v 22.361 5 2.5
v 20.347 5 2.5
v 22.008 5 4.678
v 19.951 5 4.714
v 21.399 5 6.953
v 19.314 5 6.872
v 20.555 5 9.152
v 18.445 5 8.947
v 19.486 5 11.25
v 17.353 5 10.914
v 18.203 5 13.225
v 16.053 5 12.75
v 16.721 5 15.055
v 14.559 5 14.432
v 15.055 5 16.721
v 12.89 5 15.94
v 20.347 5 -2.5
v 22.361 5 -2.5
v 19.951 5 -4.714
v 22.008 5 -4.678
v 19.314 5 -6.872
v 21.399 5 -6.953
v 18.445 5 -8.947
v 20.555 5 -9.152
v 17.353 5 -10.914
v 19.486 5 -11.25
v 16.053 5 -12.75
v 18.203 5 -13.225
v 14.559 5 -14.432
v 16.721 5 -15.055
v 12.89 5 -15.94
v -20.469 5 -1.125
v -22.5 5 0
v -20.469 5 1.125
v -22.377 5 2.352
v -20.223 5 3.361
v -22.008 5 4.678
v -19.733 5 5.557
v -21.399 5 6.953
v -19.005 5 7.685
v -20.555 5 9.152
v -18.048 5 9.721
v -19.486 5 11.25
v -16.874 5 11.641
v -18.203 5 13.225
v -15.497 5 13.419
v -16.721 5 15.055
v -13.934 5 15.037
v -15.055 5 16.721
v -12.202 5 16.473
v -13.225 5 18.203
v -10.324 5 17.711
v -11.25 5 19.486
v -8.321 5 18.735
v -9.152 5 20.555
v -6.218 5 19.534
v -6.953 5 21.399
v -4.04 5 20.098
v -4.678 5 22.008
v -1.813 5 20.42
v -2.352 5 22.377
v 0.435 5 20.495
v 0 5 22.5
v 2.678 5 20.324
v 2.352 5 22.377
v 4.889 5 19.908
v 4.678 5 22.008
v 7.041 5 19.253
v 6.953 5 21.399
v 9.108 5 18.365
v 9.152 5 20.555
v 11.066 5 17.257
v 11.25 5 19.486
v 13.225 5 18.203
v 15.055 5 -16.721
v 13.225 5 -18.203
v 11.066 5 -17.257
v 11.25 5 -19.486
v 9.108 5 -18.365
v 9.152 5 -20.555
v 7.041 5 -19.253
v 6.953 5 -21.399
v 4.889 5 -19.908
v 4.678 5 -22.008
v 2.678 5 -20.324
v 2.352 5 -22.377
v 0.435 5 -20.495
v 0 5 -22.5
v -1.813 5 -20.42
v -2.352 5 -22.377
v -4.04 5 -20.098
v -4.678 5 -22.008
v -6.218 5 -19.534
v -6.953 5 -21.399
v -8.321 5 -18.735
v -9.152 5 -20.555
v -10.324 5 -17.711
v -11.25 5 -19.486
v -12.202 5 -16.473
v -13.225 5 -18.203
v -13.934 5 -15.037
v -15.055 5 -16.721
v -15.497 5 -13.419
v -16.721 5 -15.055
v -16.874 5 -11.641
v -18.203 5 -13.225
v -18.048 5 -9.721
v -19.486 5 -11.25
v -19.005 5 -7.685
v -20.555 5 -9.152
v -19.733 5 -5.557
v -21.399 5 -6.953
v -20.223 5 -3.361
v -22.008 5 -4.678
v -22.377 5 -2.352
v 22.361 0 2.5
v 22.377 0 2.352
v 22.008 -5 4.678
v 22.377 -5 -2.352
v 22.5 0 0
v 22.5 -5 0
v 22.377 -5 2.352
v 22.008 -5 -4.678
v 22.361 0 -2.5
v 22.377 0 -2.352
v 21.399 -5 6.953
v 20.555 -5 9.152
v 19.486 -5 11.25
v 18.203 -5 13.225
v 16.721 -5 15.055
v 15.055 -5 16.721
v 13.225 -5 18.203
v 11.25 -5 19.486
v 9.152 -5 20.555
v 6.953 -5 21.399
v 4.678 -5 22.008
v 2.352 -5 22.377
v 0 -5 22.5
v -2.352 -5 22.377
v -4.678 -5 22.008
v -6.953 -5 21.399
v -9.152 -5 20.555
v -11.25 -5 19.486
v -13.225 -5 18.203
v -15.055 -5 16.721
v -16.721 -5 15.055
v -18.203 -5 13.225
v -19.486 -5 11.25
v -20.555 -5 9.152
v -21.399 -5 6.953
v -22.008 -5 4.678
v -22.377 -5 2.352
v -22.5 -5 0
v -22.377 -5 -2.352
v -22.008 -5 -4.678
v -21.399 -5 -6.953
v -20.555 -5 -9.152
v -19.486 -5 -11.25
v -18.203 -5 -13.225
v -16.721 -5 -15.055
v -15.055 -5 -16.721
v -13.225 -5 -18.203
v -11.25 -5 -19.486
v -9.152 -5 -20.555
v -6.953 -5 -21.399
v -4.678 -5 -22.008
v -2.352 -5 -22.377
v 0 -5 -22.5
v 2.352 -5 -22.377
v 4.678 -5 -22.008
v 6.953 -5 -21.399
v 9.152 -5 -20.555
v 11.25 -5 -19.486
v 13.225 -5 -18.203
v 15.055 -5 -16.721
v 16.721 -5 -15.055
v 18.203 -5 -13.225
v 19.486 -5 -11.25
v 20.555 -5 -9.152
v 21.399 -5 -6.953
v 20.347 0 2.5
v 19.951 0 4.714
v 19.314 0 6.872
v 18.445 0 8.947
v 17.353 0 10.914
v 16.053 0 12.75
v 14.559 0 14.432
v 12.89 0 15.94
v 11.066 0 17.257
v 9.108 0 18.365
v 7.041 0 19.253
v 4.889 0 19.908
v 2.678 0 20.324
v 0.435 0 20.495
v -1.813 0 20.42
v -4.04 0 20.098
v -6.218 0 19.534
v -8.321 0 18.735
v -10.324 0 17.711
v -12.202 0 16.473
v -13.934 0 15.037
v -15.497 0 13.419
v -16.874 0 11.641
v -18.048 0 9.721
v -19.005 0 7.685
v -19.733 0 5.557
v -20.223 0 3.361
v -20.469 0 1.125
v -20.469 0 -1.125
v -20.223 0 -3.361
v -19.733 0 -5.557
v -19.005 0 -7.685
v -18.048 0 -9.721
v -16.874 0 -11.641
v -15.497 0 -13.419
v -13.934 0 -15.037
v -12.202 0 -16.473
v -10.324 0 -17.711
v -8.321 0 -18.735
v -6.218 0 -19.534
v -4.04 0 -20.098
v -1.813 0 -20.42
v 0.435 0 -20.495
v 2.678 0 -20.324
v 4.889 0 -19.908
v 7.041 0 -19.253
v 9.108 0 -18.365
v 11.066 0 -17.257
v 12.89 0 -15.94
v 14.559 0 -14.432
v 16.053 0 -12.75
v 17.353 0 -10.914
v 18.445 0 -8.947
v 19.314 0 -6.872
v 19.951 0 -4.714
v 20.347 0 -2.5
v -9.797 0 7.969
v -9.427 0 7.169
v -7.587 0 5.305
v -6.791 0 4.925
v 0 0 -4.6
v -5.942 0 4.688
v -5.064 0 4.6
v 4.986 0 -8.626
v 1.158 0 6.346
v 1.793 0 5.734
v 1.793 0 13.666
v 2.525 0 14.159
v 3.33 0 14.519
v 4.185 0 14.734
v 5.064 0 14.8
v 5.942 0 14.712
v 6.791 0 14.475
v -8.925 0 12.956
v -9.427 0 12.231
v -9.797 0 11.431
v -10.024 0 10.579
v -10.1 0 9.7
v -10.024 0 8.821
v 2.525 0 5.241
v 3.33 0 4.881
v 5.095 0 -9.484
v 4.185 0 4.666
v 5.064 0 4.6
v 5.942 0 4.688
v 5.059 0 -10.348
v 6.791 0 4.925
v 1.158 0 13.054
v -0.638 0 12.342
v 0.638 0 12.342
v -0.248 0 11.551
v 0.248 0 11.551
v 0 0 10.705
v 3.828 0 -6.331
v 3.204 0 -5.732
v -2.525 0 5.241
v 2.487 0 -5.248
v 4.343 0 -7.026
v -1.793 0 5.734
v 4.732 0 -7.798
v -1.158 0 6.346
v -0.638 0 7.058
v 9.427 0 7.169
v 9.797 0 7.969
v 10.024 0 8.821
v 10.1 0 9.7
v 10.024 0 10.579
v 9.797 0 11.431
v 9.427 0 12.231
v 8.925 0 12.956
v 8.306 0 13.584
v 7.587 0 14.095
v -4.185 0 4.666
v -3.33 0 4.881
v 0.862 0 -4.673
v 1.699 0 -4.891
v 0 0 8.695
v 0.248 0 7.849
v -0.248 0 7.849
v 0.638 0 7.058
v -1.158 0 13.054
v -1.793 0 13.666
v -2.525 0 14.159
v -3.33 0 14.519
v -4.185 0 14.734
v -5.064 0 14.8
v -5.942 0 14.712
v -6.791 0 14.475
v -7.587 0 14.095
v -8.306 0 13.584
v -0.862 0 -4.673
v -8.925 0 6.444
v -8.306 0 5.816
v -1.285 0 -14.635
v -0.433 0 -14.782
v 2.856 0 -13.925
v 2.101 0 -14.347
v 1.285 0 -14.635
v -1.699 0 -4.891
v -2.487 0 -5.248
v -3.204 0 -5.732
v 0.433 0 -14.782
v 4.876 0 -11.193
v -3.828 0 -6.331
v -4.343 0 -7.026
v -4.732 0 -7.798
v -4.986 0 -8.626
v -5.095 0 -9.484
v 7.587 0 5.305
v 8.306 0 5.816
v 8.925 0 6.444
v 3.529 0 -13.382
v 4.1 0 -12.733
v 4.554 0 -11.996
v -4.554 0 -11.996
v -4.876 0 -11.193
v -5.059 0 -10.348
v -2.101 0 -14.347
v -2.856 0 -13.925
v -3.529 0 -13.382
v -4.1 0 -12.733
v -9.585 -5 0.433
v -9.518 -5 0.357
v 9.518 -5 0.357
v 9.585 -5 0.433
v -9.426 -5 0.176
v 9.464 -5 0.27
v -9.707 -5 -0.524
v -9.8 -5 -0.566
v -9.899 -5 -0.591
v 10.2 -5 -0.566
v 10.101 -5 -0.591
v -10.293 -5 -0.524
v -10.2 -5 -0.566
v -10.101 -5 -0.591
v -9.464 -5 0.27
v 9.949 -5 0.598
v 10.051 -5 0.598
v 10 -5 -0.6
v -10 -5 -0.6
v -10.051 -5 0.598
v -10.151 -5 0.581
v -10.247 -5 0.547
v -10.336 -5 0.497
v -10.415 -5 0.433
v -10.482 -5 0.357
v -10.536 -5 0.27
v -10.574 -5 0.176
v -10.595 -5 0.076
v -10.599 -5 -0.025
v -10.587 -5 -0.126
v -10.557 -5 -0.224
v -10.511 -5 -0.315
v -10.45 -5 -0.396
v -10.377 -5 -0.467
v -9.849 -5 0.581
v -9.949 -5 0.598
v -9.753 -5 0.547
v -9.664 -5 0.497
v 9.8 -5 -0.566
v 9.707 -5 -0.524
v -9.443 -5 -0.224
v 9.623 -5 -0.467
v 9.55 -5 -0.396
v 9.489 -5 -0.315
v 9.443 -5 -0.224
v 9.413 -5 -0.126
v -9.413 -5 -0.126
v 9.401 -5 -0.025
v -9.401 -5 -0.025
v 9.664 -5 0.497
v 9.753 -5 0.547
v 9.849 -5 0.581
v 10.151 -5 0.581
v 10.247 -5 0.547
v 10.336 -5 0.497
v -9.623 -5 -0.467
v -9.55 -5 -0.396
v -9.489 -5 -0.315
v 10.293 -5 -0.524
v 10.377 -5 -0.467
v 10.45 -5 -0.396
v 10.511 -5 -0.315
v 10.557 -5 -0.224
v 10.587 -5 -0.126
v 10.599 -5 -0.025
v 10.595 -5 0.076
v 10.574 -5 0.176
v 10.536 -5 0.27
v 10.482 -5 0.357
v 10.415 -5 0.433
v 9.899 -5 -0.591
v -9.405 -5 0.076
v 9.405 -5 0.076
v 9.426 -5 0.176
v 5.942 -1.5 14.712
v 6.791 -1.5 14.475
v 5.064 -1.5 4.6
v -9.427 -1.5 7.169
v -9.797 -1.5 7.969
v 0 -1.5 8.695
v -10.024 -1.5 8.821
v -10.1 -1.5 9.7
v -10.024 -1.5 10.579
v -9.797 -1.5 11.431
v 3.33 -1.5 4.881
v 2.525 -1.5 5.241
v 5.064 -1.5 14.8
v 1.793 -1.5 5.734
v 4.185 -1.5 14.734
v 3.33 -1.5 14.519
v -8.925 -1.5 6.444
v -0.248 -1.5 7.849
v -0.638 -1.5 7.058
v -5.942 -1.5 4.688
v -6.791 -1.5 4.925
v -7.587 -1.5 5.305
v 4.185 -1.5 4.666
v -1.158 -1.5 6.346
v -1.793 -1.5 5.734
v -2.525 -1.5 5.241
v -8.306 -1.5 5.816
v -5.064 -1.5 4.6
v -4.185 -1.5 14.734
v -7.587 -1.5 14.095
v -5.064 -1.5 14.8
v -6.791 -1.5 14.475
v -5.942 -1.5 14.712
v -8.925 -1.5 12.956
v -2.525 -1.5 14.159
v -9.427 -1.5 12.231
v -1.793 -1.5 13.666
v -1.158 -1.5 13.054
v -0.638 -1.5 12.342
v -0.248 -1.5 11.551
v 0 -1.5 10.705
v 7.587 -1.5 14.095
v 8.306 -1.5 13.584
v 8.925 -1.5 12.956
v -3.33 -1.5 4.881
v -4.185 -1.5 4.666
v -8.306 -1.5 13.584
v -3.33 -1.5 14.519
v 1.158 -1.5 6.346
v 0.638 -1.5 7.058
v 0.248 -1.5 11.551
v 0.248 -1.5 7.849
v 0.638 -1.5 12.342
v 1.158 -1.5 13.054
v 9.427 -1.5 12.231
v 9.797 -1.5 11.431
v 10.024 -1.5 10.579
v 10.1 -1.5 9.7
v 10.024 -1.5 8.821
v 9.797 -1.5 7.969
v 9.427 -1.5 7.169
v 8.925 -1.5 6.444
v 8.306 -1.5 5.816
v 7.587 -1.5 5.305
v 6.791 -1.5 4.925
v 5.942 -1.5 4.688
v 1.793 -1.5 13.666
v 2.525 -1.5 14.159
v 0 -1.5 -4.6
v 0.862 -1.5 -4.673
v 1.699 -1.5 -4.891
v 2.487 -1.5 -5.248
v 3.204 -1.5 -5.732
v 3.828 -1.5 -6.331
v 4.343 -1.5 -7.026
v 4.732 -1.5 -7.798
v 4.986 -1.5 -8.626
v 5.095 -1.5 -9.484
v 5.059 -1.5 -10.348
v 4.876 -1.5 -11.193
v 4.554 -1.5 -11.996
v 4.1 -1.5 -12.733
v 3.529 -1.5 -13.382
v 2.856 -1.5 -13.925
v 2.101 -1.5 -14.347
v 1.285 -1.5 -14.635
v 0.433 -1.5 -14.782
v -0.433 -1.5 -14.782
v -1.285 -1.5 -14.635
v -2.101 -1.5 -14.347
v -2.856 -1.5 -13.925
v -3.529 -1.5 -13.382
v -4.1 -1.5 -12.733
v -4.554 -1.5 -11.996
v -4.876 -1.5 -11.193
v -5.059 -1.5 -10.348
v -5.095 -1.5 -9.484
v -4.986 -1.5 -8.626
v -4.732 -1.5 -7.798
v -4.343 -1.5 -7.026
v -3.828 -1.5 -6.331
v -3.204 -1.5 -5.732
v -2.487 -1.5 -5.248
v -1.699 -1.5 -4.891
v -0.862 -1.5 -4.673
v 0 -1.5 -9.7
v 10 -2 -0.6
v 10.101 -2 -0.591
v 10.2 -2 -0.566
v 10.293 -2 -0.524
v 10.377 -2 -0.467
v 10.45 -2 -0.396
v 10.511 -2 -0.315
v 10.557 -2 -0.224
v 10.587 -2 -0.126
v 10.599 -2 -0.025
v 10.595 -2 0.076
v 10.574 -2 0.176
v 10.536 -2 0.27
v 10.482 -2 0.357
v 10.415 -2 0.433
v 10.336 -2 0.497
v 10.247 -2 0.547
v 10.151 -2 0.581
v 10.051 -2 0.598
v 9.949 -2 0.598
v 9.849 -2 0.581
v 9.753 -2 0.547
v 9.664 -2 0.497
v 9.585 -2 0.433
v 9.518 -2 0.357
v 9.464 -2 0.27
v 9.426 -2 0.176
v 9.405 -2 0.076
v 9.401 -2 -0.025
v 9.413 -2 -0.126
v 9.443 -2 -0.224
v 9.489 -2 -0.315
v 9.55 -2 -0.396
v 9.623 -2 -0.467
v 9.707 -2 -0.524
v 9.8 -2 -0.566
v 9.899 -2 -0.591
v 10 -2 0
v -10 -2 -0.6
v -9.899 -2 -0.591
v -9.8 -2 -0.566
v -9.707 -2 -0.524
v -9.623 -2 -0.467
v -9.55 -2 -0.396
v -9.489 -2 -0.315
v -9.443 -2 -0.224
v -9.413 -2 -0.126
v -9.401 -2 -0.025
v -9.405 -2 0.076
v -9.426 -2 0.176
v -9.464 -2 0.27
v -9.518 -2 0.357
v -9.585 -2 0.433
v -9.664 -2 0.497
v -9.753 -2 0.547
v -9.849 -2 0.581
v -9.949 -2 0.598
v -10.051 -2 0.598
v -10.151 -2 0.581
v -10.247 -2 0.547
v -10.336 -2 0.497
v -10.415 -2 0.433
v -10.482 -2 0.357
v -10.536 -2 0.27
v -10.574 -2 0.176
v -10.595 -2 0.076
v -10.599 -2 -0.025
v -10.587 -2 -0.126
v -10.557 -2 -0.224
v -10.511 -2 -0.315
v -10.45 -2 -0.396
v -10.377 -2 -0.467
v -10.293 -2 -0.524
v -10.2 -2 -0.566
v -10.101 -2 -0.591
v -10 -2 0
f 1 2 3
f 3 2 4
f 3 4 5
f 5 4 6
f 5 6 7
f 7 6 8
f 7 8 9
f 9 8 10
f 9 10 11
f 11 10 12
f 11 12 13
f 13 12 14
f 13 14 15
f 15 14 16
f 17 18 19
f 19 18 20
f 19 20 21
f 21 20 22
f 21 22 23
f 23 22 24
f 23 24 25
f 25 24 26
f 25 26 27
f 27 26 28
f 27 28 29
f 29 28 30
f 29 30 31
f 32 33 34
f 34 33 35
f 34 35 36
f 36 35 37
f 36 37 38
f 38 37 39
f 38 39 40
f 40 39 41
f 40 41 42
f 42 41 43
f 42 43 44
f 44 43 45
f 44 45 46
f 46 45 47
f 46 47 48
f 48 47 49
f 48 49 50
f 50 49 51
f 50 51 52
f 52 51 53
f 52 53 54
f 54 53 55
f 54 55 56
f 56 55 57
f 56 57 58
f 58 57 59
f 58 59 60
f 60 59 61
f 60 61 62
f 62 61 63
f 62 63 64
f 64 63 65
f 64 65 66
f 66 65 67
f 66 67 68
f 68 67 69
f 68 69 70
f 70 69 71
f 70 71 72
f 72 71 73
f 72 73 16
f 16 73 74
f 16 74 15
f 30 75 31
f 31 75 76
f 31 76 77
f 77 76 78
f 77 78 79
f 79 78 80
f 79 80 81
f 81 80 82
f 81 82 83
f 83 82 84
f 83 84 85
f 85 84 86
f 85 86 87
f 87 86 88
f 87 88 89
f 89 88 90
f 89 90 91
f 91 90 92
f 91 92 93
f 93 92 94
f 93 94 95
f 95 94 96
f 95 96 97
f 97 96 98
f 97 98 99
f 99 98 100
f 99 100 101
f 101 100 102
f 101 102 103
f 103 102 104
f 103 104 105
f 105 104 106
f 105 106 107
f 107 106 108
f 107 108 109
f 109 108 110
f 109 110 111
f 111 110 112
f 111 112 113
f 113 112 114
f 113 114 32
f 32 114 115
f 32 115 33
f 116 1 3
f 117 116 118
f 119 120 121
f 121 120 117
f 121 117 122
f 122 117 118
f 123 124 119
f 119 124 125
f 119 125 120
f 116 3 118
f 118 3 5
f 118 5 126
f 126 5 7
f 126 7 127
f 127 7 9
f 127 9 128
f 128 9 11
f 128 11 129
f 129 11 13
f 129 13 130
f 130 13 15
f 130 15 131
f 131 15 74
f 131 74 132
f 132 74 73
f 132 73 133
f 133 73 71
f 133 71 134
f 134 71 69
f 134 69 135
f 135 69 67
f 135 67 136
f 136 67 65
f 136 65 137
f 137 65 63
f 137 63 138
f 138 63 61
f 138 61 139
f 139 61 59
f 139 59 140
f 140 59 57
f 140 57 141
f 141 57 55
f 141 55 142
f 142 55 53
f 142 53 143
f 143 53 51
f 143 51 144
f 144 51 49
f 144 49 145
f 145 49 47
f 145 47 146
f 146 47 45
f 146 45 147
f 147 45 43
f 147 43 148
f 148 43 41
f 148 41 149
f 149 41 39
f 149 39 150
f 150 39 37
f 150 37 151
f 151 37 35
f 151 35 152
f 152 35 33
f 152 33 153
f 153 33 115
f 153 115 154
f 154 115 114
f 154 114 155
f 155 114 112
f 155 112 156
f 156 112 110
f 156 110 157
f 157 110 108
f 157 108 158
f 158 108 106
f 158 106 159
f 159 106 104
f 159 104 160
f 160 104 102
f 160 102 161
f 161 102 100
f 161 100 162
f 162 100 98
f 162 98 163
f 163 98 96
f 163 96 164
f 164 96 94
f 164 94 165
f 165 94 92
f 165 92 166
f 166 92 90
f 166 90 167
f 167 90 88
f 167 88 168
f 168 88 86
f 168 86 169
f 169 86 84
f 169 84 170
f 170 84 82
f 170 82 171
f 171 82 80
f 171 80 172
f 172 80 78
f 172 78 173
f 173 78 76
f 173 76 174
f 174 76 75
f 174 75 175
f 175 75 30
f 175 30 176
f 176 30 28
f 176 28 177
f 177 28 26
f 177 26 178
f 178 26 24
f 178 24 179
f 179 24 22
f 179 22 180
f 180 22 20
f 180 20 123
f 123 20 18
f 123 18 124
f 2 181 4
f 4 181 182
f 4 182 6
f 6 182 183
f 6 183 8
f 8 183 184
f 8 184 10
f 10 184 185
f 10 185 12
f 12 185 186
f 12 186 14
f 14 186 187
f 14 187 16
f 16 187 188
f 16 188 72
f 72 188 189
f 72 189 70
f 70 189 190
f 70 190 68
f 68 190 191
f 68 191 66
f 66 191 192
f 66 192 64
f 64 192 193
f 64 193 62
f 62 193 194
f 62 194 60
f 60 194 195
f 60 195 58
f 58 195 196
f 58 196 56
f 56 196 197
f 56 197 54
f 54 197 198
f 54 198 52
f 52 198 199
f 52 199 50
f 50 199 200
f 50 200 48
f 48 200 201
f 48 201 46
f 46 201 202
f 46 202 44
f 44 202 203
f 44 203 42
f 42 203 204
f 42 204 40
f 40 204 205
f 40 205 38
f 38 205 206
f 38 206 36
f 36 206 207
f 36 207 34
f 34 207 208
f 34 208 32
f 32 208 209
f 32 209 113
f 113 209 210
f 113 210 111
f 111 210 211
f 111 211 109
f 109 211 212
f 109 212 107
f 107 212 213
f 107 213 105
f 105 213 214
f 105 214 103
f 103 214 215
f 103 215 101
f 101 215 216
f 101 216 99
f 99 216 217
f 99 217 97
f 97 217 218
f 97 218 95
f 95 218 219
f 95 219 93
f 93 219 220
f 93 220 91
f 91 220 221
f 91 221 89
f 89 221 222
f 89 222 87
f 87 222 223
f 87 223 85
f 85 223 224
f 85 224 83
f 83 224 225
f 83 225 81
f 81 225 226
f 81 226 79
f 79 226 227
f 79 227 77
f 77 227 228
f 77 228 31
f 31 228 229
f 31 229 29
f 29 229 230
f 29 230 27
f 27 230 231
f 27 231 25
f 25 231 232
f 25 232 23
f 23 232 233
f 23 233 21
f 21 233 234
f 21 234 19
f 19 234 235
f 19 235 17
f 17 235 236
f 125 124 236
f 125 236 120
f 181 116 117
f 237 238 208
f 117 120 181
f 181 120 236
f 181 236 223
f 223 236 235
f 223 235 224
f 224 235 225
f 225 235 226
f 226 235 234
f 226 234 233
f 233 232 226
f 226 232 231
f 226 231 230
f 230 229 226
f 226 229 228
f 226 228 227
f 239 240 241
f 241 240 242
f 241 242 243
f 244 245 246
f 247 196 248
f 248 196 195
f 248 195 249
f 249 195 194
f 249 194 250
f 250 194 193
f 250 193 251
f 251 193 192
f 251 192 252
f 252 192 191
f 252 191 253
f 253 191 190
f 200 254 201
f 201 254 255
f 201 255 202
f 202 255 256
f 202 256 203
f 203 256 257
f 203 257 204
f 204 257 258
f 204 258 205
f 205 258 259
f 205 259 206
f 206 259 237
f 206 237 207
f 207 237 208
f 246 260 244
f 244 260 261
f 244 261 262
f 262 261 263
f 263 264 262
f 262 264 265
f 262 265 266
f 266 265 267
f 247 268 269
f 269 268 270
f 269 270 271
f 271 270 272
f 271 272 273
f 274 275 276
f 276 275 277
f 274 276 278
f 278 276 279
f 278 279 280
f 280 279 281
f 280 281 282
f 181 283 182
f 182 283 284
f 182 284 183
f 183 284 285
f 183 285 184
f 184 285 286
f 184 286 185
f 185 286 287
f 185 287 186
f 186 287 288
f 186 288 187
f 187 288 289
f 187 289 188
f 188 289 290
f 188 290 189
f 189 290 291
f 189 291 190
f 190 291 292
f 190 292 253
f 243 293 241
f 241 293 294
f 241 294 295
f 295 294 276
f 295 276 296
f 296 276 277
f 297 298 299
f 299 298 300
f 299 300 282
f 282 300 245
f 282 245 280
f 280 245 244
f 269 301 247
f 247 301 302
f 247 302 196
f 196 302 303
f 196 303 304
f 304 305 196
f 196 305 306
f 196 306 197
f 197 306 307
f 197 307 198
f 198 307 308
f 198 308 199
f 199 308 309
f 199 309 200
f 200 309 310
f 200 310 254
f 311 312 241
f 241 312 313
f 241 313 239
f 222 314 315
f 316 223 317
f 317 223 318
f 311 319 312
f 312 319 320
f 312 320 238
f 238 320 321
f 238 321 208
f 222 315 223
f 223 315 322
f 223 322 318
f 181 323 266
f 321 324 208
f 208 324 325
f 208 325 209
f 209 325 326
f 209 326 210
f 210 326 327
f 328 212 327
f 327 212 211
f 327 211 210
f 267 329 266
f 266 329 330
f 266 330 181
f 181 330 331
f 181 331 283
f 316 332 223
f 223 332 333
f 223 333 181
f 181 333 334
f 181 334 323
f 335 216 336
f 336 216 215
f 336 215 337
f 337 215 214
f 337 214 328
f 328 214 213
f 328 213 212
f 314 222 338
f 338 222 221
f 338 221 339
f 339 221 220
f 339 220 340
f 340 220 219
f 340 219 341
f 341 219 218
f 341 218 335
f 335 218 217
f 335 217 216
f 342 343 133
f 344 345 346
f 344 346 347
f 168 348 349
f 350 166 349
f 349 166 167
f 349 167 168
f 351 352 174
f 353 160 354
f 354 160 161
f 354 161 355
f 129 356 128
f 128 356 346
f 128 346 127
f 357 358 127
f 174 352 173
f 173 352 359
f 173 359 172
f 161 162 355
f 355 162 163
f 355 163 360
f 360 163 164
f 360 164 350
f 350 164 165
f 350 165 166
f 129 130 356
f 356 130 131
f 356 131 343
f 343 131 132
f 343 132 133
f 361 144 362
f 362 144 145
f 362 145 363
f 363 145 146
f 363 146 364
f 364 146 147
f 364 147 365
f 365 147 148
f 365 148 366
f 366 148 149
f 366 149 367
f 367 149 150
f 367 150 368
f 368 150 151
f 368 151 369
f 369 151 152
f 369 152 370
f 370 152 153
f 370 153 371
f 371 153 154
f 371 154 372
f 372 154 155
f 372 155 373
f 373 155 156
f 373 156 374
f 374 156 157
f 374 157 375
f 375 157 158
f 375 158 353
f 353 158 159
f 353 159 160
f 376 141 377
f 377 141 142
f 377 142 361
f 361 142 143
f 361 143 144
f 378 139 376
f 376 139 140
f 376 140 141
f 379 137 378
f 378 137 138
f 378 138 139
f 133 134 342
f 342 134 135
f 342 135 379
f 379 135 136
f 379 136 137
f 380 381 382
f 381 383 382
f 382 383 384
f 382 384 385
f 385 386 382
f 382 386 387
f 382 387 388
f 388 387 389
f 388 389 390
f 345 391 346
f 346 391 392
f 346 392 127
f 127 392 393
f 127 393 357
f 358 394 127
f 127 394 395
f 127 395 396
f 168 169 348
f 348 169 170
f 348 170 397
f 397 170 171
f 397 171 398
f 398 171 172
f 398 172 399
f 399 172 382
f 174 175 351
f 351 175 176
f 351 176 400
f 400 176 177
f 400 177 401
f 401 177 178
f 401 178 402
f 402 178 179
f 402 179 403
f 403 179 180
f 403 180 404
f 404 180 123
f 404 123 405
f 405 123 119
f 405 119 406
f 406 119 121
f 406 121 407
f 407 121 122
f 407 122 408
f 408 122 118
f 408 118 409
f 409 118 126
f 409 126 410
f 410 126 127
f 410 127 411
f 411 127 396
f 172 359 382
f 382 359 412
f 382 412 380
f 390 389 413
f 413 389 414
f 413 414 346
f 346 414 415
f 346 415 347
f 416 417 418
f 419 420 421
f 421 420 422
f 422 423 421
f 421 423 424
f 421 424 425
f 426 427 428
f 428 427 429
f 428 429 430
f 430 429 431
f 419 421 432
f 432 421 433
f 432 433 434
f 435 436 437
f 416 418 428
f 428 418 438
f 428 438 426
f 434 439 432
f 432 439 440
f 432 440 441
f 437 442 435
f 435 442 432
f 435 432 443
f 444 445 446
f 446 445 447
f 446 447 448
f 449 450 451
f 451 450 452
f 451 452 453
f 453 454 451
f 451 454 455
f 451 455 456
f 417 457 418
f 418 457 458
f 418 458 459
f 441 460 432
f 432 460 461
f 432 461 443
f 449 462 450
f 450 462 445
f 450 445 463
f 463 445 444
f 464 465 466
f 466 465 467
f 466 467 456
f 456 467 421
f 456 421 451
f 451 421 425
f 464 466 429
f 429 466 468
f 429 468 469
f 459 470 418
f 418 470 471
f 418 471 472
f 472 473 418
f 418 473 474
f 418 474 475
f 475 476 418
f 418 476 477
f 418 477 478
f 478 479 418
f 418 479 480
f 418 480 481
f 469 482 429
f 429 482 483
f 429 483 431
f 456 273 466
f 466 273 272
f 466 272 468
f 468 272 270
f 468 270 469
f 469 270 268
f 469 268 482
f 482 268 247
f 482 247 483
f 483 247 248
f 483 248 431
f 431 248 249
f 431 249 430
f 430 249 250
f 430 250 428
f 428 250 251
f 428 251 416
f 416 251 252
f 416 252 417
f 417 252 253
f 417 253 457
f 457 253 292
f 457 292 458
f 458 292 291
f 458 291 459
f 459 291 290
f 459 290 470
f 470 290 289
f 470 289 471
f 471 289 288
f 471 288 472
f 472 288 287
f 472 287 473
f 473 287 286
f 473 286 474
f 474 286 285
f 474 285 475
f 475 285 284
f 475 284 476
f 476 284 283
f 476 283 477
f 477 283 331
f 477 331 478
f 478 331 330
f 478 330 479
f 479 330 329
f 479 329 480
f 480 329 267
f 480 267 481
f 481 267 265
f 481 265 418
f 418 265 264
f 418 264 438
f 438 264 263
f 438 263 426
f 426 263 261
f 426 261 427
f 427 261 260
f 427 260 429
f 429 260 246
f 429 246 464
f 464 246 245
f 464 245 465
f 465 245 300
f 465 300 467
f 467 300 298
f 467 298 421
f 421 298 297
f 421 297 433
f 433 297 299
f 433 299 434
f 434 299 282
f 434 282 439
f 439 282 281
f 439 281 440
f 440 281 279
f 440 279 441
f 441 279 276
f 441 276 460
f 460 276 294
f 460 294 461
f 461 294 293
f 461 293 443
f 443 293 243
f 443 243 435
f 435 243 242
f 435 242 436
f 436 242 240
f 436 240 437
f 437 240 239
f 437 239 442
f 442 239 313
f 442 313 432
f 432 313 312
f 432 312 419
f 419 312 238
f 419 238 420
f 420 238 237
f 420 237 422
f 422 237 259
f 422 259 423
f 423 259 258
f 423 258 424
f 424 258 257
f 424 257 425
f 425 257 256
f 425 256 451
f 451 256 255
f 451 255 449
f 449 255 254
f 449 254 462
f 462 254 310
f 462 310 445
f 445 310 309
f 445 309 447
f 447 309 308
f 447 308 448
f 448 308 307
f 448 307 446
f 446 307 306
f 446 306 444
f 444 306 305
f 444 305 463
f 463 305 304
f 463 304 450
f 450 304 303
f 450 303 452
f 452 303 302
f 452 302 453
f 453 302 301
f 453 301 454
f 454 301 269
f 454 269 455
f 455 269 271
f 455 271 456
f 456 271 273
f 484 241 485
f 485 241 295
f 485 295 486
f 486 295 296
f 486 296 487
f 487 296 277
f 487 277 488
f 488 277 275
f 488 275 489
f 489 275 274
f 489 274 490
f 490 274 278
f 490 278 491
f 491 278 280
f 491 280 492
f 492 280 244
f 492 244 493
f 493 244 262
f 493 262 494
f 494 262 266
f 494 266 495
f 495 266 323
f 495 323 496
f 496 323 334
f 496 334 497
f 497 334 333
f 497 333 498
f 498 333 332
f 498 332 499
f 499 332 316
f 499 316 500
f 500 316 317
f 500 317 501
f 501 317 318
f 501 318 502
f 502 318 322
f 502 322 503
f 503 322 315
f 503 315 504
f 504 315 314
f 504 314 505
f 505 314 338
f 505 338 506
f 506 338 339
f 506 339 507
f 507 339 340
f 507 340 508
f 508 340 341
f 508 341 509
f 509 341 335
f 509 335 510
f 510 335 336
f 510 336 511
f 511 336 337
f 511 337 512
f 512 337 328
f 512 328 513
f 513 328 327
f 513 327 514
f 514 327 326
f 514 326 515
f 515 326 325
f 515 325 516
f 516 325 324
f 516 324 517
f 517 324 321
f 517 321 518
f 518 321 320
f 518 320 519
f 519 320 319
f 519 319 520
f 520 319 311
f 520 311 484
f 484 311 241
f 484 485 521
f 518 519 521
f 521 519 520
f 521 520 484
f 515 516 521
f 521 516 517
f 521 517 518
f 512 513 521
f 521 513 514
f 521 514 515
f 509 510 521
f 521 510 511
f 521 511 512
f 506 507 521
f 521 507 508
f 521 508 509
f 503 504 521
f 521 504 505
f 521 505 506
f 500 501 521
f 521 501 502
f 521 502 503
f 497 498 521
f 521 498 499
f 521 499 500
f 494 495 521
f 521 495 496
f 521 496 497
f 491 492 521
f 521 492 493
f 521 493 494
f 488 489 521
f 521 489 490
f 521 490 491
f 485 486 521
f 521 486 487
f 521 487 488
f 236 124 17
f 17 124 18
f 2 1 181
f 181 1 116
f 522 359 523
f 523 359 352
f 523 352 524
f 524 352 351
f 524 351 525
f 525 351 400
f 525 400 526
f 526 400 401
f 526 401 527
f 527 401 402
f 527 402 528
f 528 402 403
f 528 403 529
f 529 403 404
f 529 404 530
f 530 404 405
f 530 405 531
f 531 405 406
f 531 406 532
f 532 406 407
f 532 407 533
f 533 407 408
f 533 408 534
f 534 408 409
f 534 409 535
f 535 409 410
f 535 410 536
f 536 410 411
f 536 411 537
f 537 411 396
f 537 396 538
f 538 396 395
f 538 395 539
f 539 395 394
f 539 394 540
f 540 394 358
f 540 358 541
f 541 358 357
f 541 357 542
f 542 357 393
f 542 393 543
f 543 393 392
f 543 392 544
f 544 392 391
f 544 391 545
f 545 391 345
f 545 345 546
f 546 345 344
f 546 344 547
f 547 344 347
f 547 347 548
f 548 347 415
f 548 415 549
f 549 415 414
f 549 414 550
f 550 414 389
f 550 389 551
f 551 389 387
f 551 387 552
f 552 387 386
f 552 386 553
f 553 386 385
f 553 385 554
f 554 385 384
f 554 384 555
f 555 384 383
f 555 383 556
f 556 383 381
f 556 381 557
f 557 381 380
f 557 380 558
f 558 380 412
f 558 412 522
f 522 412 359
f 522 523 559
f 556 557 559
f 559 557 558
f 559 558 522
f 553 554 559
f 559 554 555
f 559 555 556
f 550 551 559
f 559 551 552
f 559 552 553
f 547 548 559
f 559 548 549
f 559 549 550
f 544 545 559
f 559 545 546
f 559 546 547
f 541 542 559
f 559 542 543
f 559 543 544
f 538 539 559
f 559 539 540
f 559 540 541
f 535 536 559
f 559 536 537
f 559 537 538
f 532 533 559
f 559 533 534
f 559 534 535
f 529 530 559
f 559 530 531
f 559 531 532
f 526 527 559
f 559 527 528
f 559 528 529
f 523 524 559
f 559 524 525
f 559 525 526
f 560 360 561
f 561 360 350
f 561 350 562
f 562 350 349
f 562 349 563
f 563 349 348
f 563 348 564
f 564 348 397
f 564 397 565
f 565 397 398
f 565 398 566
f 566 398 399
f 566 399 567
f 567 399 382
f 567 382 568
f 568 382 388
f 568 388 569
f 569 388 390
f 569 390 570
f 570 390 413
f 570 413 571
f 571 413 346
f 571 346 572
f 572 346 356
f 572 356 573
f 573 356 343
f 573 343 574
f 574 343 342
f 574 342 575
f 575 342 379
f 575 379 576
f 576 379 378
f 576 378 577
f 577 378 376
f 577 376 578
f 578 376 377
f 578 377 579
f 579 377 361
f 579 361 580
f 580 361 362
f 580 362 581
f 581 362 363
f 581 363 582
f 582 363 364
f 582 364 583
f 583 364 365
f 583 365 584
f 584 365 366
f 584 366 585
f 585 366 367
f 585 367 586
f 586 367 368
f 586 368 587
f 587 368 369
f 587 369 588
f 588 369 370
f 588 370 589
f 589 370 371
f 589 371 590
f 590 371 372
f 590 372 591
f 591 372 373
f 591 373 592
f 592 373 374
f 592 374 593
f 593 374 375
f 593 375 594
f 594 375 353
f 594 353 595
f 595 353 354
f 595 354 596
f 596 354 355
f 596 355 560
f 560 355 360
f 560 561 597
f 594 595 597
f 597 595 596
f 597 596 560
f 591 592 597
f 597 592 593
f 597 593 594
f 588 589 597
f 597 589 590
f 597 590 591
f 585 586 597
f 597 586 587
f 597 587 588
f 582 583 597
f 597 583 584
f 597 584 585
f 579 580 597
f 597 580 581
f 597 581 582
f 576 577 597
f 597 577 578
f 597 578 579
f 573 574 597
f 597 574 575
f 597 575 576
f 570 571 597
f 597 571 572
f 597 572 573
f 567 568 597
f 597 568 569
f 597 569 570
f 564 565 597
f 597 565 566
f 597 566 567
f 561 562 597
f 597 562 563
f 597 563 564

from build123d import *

# Parameters (mm, degrees)
SKETCH_1_R          = 22.5
SKETCH_1_R_2        = 20.5
EXTRUDE_1_DEPTH     = 5
EXTRUDE_START       = -5
SKETCH_1_4_R        = 22.5
EXTRUDE_2_DEPTH     = 5
SKETCH_2_R          = 5.1
CUT_EXTRUDE_1_DEPTH = 1.5
SKETCH_3_W          = 30
SKETCH_3_H          = 5
CUT_EXTRUDE_2_DEPTH = 5
SKETCH_4_R          = 0.6
CUT_EXTRUDE_3_DEPTH = 3


with BuildPart() as part:
    # 草图1 → 凸台-拉伸1 (new body)
    with BuildSketch(Plane(origin=(0, 0, 0), x_dir=(1, 0, 0), z_dir=(0, 1, 0))):
        with Locations(Location((0, 0, 0), (0, 0, 270))):
            Circle(SKETCH_1_R)
        with Locations(Location((0, 0, 0), (0, 0, 270))):
            Circle(SKETCH_1_R_2, mode=Mode.SUBTRACT)
    extrude(amount=EXTRUDE_1_DEPTH)

    # 草图1<4> → 凸台-拉伸2 (add)
    with BuildSketch(Plane(origin=(0, 0, 0), x_dir=(1, 0, 0), z_dir=(0, 1, 0)).offset(EXTRUDE_START)):
        with Locations(Location((0, 0, 0), (0, 0, 270))):
            Circle(SKETCH_1_4_R)
    extrude(amount=EXTRUDE_2_DEPTH)

    # 草图2 → 切除-拉伸1 (cut)
    with BuildSketch(Plane(origin=(0, 0, 0), x_dir=(1, 0, 0), z_dir=(0, 1, 0))):
        with Locations(Location((0, 9.7, 0), (0, 0, 270))):
            Circle(SKETCH_2_R)
        with Locations((-5, -9.7)):
            Circle(SKETCH_2_R)
        with Locations((5, -9.7)):
            Circle(SKETCH_2_R)
    extrude(amount=-CUT_EXTRUDE_1_DEPTH, mode=Mode.SUBTRACT)

    # 草图3 → 切除-拉伸2 (cut)
    with BuildSketch(Plane(origin=(0, 5, 0), x_dir=(1, 0, 0), z_dir=(0, 1, 0))):
        with Locations((15, 0)):
            Rectangle(SKETCH_3_W, SKETCH_3_H)
    extrude(amount=-CUT_EXTRUDE_2_DEPTH, mode=Mode.SUBTRACT)

    # 草图4 → 切除-拉伸3 (cut)
    with BuildSketch(Plane.XZ.offset(5)):
        with Locations(Location((-10, 0, 0), (0, 0, 270))):
            Circle(SKETCH_4_R)
        with Locations(Location((10, 0, 0), (0, 0, 270))):
            Circle(SKETCH_4_R)
    extrude(amount=-CUT_EXTRUDE_3_DEPTH, mode=Mode.SUBTRACT)


solid = part.part
